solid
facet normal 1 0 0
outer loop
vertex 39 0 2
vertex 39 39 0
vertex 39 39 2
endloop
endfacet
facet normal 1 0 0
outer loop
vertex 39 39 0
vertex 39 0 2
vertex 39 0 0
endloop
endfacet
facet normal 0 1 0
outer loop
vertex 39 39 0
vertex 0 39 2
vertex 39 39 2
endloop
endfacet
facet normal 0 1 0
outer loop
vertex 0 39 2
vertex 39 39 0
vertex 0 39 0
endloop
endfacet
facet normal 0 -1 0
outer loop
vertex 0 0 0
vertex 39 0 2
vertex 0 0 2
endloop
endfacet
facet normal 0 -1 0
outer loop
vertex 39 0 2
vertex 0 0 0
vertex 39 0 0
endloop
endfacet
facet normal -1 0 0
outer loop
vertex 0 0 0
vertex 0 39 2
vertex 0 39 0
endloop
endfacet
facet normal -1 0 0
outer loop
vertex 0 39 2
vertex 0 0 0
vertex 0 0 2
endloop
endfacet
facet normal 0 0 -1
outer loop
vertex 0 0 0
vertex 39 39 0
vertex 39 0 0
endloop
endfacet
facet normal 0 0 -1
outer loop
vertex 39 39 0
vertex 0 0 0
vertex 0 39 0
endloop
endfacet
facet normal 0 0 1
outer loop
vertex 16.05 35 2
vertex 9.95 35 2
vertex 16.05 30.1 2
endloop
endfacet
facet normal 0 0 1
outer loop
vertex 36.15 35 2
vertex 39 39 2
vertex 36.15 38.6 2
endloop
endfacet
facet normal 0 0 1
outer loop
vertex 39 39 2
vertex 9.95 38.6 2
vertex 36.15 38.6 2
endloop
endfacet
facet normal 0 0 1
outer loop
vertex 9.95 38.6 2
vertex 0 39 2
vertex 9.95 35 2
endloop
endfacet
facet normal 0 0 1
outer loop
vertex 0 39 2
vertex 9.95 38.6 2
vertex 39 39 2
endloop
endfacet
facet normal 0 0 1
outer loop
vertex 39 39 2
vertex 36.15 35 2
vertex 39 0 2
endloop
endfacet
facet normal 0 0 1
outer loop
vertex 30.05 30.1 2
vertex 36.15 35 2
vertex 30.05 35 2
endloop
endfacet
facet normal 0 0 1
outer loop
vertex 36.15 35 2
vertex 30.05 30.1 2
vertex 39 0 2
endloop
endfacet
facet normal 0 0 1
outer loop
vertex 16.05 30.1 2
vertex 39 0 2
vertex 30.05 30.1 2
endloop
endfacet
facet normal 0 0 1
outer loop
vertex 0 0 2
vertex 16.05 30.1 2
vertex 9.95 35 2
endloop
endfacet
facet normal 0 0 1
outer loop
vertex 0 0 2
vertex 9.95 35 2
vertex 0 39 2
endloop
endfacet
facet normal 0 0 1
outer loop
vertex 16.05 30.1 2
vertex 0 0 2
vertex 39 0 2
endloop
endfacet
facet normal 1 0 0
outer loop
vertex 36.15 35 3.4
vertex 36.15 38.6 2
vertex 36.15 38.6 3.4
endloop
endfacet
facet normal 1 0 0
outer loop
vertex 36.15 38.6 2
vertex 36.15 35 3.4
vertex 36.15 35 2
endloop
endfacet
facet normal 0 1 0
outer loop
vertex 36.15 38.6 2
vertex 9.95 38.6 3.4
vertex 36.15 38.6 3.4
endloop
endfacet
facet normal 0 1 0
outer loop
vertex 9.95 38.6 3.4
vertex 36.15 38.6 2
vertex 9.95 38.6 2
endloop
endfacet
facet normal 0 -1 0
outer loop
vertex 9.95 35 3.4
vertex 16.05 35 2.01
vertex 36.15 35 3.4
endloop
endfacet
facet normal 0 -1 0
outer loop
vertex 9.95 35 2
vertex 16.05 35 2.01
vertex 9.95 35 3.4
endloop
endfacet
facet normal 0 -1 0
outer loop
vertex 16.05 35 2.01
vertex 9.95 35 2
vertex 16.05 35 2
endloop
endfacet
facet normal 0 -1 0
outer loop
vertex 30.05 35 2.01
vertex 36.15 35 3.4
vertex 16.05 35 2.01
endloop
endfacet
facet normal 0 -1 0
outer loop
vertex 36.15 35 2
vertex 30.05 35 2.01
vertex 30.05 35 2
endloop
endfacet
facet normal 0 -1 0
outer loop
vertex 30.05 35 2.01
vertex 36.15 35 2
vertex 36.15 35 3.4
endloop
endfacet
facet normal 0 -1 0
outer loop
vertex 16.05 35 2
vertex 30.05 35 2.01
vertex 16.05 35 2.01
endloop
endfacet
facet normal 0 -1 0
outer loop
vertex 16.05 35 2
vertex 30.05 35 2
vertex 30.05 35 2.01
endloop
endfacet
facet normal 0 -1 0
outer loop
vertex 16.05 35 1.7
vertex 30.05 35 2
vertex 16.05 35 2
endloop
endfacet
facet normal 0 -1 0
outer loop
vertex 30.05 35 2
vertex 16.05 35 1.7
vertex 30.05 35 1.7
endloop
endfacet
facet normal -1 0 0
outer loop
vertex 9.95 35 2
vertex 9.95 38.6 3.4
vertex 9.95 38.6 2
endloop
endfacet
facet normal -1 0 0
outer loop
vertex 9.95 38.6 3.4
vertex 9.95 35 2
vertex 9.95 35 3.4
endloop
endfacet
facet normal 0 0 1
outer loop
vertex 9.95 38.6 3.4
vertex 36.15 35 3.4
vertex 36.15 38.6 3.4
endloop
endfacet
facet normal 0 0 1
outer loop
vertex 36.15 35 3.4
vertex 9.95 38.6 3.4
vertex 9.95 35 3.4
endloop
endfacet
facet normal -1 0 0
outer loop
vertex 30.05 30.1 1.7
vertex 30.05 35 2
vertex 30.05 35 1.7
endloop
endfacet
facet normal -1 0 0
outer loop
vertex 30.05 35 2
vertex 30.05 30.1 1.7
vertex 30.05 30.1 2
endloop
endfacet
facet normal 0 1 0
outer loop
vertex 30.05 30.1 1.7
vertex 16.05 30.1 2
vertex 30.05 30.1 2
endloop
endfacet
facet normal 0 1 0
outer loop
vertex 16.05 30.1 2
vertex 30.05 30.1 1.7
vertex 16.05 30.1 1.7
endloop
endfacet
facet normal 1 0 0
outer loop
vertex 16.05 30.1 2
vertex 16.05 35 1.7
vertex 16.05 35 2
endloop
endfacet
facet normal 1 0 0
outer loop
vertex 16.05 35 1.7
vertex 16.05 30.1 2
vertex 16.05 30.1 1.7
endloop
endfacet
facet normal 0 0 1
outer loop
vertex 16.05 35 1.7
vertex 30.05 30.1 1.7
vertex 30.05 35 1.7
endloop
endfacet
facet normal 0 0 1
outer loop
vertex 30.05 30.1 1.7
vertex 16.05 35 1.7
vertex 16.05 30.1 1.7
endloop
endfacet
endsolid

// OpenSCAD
// Back plate for the radar station. 39 x 39 mm, 2 mm thick. Covers the open back of the hut and
// rises 8.7 mm above the roof to brace the glue-on radio tower.
//
//   part = "plate"     : print orientation, outer face on the bed, no supports.
//   part = "installed" : in station coordinates (same frame as radar_station_adhesive.scad).
//
// Installed position (station coordinates): x 0.05..39.05, z 8.2..47.2 (bottom clears the fence
// rails by 0.2 mm), inner face against the hut's back face at y = 12.0.
// Inner face details:
//   - 0.3 mm relief behind the tower foot (its back is flush with the hut) so it can't hold the plate off
//   - 1.4 mm pad above the foot that reaches to 0.1 mm behind the tower's flat back: glue the tower to it

plate_w = 39;  plate_h = 39;  plate_t = 2;
x0 = 0.05;  z0 = 8.2;  y_in = 12.0;            // installed position
foot  = [16.3, 29.9, 38.5, 43.0];               // tower foot x0, x1, z0, z1
tower_back_y = 10.5;
pad   = [10.0, 36.2, 43.2, z0 + plate_h - 0.4]; // x0, x1, z0, z1 of the glue pad

module plate_installed() {
    difference() {
        union() {
            translate([x0, y_in, z0]) cube([plate_w, plate_t, plate_h]);
            translate([pad[0], tower_back_y + 0.1, pad[2]])
                cube([pad[1] - pad[0], y_in - tower_back_y - 0.1 + 0.01, pad[3] - pad[2]]);
        }
        translate([foot[0] - 0.2, y_in - 0.01, foot[2] - 0.2])
            cube([foot[1] - foot[0] + 0.4, 0.31, foot[3] - foot[2] + 0.4]);
    }
}

part = "plate";
if (part == "installed") plate_installed();
else if (part == "plate")   // outer face down: X = x, Y = z, Z = 14 - y
    translate([-x0, -z0, 0]) multmatrix([[1,0,0,0],[0,0,1,0],[0,-1,0,y_in + plate_t],[0,0,0,1]]) plate_installed();
